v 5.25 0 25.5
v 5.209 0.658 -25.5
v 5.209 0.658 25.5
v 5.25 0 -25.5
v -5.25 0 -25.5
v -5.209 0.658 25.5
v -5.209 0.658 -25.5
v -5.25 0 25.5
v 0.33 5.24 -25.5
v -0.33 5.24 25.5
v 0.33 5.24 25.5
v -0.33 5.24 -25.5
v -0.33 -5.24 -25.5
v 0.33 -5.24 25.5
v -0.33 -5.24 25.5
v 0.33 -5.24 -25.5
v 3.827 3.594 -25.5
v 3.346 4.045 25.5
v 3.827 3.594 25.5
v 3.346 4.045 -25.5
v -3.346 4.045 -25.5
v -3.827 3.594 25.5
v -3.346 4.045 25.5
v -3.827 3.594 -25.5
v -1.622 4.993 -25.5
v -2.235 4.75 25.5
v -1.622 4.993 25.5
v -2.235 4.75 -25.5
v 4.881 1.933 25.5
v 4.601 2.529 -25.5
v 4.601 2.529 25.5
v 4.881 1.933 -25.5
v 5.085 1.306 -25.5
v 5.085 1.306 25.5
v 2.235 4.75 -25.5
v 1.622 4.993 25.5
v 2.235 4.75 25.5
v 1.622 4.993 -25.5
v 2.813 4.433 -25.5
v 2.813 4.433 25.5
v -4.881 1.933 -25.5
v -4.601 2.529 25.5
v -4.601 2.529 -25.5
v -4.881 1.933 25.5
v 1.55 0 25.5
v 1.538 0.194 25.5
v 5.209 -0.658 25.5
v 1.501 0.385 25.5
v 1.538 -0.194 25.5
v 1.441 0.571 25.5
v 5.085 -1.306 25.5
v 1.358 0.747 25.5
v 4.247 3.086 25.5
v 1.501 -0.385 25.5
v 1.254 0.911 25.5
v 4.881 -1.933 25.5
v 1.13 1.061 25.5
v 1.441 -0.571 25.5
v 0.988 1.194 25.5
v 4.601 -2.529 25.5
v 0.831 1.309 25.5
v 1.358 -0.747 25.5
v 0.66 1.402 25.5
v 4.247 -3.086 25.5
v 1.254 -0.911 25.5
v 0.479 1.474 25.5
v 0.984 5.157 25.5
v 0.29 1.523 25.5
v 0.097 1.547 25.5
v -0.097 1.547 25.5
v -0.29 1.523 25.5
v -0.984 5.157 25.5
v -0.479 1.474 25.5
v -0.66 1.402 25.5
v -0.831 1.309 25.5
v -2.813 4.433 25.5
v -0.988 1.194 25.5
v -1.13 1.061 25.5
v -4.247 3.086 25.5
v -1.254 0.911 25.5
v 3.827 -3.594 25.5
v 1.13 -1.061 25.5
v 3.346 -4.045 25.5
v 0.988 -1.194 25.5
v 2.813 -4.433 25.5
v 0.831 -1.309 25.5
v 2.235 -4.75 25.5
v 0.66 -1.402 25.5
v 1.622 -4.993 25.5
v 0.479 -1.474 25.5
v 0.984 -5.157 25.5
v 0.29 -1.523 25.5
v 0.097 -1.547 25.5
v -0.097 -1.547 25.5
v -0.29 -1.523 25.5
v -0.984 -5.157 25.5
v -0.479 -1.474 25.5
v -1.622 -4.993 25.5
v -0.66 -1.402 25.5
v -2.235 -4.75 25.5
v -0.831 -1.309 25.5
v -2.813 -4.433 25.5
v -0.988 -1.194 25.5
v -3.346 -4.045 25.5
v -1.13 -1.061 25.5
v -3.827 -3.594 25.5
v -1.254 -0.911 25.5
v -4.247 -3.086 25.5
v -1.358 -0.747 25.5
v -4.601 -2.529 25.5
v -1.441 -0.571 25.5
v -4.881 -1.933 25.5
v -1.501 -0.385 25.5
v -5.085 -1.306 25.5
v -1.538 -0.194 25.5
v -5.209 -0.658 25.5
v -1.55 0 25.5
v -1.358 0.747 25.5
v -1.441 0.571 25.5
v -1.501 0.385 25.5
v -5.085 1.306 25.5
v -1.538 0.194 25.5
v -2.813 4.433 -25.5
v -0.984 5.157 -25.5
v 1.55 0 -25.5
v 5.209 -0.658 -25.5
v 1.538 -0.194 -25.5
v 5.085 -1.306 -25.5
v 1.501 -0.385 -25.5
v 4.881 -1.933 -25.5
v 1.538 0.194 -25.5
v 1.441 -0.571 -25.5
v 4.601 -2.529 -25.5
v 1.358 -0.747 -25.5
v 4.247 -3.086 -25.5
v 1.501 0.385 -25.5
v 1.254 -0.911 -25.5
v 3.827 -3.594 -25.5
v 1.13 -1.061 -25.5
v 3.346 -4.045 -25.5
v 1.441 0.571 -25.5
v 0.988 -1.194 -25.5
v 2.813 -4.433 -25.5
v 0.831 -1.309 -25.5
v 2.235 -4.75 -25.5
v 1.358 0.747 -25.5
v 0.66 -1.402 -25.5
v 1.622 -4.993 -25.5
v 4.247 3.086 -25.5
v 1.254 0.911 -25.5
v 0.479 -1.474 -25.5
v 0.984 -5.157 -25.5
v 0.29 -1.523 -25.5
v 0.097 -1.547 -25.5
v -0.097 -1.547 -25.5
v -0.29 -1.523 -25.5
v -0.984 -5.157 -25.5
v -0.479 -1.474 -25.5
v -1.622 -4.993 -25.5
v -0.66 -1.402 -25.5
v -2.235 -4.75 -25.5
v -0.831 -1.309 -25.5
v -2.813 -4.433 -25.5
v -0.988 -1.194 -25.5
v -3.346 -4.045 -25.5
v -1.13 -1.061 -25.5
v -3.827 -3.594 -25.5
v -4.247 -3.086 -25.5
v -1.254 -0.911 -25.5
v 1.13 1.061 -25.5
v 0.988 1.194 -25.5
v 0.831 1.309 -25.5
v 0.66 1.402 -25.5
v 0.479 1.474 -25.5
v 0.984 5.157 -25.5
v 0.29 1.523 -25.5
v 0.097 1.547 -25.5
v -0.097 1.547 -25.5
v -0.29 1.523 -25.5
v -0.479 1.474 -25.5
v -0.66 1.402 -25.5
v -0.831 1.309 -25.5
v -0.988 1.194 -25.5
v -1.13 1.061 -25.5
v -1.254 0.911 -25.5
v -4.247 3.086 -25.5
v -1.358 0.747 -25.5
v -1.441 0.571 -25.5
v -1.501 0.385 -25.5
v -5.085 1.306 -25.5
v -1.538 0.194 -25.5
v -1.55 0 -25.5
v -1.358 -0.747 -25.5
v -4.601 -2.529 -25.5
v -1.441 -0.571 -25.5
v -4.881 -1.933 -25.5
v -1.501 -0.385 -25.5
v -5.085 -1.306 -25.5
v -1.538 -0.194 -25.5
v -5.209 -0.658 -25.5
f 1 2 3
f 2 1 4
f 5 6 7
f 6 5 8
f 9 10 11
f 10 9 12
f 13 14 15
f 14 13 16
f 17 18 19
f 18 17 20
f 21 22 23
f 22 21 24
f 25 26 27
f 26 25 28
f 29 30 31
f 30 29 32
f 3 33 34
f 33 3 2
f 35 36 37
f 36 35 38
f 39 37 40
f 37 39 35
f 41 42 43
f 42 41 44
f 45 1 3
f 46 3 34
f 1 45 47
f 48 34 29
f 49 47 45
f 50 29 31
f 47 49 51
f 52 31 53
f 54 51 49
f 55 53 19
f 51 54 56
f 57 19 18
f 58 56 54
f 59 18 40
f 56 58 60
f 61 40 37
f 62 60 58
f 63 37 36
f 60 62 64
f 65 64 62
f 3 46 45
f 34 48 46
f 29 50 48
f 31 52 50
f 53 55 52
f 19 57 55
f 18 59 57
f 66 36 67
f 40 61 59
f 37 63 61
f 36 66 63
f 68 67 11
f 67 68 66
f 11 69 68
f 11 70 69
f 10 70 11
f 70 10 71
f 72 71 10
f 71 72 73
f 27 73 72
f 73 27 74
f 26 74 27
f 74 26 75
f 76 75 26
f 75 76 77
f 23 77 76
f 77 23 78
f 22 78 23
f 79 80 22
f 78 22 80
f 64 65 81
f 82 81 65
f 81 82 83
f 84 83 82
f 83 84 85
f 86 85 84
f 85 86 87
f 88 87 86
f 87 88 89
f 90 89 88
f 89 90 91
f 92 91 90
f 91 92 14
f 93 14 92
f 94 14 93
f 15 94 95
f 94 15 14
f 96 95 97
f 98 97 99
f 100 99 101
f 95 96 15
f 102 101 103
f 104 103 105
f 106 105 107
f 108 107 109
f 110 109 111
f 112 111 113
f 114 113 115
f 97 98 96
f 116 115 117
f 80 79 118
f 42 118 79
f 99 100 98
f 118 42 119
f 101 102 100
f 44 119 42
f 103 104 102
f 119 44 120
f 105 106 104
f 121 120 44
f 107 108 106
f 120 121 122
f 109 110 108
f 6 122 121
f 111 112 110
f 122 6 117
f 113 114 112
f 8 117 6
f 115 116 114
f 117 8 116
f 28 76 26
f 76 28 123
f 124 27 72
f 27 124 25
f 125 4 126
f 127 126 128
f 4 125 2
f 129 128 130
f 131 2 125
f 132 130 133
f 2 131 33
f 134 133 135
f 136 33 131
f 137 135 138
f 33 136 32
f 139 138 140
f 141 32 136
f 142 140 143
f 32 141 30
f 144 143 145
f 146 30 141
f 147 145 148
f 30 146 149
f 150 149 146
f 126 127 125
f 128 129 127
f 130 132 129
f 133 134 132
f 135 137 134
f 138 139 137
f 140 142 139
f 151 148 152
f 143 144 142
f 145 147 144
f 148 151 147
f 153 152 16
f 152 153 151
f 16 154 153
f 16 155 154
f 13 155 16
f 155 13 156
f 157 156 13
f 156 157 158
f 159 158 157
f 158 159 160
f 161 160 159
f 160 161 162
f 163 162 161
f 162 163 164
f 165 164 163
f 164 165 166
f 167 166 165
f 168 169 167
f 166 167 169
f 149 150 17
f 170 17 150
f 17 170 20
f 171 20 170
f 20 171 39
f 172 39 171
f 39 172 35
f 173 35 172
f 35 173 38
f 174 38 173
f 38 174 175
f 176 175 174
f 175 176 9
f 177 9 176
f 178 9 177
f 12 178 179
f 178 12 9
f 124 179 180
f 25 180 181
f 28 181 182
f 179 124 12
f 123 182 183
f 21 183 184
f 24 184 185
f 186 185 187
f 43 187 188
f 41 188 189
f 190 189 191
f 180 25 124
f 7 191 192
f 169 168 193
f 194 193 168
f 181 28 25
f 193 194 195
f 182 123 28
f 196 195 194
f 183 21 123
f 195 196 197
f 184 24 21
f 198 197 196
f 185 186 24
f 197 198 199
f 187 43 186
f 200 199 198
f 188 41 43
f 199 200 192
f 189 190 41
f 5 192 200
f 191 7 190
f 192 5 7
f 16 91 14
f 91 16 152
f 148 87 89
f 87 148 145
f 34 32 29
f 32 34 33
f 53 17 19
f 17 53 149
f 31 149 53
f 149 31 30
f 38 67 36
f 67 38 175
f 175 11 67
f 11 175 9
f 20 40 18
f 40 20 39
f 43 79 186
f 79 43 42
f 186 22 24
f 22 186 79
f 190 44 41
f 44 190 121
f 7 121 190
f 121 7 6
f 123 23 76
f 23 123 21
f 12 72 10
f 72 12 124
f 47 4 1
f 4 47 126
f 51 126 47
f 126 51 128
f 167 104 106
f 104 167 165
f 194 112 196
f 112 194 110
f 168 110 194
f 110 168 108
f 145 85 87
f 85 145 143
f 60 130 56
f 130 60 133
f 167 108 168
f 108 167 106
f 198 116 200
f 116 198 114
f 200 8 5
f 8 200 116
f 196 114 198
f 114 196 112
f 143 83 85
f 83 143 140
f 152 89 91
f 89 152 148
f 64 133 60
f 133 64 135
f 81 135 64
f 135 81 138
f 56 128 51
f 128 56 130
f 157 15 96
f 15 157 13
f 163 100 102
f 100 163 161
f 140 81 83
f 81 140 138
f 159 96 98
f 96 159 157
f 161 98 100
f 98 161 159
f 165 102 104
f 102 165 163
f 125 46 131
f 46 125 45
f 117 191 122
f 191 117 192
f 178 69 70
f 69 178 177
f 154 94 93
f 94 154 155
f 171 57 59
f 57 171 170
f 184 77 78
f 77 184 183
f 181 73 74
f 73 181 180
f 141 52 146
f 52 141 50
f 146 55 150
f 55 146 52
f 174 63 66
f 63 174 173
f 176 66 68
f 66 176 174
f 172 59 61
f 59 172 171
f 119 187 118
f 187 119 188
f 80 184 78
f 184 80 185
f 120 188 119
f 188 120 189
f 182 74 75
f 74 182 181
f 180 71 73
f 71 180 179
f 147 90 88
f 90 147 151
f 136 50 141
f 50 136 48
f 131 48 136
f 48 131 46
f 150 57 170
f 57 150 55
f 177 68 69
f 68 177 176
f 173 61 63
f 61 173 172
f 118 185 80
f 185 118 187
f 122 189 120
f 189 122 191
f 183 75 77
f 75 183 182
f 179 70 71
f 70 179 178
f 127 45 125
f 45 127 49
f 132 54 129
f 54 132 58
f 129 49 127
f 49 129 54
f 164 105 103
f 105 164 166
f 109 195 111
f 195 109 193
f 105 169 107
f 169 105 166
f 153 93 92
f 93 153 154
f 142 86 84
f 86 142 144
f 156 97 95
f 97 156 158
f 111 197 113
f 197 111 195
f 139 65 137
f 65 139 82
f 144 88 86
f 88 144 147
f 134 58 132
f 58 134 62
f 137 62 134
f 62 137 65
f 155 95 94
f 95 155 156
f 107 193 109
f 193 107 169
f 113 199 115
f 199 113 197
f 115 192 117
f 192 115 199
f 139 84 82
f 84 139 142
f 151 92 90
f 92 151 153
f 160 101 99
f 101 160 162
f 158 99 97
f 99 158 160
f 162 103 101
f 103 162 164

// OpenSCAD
$fn = 50;


difference() {
	union() {
		translate(v = [0, 0, -25.5000000000]) {
			cylinder(h = 51, r = 5.2500000000);
		}
	}
	union() {
		translate(v = [0, 0, -100.0000000000]) {
			cylinder(h = 200, r = 1.5500000000);
		}
	}
}
